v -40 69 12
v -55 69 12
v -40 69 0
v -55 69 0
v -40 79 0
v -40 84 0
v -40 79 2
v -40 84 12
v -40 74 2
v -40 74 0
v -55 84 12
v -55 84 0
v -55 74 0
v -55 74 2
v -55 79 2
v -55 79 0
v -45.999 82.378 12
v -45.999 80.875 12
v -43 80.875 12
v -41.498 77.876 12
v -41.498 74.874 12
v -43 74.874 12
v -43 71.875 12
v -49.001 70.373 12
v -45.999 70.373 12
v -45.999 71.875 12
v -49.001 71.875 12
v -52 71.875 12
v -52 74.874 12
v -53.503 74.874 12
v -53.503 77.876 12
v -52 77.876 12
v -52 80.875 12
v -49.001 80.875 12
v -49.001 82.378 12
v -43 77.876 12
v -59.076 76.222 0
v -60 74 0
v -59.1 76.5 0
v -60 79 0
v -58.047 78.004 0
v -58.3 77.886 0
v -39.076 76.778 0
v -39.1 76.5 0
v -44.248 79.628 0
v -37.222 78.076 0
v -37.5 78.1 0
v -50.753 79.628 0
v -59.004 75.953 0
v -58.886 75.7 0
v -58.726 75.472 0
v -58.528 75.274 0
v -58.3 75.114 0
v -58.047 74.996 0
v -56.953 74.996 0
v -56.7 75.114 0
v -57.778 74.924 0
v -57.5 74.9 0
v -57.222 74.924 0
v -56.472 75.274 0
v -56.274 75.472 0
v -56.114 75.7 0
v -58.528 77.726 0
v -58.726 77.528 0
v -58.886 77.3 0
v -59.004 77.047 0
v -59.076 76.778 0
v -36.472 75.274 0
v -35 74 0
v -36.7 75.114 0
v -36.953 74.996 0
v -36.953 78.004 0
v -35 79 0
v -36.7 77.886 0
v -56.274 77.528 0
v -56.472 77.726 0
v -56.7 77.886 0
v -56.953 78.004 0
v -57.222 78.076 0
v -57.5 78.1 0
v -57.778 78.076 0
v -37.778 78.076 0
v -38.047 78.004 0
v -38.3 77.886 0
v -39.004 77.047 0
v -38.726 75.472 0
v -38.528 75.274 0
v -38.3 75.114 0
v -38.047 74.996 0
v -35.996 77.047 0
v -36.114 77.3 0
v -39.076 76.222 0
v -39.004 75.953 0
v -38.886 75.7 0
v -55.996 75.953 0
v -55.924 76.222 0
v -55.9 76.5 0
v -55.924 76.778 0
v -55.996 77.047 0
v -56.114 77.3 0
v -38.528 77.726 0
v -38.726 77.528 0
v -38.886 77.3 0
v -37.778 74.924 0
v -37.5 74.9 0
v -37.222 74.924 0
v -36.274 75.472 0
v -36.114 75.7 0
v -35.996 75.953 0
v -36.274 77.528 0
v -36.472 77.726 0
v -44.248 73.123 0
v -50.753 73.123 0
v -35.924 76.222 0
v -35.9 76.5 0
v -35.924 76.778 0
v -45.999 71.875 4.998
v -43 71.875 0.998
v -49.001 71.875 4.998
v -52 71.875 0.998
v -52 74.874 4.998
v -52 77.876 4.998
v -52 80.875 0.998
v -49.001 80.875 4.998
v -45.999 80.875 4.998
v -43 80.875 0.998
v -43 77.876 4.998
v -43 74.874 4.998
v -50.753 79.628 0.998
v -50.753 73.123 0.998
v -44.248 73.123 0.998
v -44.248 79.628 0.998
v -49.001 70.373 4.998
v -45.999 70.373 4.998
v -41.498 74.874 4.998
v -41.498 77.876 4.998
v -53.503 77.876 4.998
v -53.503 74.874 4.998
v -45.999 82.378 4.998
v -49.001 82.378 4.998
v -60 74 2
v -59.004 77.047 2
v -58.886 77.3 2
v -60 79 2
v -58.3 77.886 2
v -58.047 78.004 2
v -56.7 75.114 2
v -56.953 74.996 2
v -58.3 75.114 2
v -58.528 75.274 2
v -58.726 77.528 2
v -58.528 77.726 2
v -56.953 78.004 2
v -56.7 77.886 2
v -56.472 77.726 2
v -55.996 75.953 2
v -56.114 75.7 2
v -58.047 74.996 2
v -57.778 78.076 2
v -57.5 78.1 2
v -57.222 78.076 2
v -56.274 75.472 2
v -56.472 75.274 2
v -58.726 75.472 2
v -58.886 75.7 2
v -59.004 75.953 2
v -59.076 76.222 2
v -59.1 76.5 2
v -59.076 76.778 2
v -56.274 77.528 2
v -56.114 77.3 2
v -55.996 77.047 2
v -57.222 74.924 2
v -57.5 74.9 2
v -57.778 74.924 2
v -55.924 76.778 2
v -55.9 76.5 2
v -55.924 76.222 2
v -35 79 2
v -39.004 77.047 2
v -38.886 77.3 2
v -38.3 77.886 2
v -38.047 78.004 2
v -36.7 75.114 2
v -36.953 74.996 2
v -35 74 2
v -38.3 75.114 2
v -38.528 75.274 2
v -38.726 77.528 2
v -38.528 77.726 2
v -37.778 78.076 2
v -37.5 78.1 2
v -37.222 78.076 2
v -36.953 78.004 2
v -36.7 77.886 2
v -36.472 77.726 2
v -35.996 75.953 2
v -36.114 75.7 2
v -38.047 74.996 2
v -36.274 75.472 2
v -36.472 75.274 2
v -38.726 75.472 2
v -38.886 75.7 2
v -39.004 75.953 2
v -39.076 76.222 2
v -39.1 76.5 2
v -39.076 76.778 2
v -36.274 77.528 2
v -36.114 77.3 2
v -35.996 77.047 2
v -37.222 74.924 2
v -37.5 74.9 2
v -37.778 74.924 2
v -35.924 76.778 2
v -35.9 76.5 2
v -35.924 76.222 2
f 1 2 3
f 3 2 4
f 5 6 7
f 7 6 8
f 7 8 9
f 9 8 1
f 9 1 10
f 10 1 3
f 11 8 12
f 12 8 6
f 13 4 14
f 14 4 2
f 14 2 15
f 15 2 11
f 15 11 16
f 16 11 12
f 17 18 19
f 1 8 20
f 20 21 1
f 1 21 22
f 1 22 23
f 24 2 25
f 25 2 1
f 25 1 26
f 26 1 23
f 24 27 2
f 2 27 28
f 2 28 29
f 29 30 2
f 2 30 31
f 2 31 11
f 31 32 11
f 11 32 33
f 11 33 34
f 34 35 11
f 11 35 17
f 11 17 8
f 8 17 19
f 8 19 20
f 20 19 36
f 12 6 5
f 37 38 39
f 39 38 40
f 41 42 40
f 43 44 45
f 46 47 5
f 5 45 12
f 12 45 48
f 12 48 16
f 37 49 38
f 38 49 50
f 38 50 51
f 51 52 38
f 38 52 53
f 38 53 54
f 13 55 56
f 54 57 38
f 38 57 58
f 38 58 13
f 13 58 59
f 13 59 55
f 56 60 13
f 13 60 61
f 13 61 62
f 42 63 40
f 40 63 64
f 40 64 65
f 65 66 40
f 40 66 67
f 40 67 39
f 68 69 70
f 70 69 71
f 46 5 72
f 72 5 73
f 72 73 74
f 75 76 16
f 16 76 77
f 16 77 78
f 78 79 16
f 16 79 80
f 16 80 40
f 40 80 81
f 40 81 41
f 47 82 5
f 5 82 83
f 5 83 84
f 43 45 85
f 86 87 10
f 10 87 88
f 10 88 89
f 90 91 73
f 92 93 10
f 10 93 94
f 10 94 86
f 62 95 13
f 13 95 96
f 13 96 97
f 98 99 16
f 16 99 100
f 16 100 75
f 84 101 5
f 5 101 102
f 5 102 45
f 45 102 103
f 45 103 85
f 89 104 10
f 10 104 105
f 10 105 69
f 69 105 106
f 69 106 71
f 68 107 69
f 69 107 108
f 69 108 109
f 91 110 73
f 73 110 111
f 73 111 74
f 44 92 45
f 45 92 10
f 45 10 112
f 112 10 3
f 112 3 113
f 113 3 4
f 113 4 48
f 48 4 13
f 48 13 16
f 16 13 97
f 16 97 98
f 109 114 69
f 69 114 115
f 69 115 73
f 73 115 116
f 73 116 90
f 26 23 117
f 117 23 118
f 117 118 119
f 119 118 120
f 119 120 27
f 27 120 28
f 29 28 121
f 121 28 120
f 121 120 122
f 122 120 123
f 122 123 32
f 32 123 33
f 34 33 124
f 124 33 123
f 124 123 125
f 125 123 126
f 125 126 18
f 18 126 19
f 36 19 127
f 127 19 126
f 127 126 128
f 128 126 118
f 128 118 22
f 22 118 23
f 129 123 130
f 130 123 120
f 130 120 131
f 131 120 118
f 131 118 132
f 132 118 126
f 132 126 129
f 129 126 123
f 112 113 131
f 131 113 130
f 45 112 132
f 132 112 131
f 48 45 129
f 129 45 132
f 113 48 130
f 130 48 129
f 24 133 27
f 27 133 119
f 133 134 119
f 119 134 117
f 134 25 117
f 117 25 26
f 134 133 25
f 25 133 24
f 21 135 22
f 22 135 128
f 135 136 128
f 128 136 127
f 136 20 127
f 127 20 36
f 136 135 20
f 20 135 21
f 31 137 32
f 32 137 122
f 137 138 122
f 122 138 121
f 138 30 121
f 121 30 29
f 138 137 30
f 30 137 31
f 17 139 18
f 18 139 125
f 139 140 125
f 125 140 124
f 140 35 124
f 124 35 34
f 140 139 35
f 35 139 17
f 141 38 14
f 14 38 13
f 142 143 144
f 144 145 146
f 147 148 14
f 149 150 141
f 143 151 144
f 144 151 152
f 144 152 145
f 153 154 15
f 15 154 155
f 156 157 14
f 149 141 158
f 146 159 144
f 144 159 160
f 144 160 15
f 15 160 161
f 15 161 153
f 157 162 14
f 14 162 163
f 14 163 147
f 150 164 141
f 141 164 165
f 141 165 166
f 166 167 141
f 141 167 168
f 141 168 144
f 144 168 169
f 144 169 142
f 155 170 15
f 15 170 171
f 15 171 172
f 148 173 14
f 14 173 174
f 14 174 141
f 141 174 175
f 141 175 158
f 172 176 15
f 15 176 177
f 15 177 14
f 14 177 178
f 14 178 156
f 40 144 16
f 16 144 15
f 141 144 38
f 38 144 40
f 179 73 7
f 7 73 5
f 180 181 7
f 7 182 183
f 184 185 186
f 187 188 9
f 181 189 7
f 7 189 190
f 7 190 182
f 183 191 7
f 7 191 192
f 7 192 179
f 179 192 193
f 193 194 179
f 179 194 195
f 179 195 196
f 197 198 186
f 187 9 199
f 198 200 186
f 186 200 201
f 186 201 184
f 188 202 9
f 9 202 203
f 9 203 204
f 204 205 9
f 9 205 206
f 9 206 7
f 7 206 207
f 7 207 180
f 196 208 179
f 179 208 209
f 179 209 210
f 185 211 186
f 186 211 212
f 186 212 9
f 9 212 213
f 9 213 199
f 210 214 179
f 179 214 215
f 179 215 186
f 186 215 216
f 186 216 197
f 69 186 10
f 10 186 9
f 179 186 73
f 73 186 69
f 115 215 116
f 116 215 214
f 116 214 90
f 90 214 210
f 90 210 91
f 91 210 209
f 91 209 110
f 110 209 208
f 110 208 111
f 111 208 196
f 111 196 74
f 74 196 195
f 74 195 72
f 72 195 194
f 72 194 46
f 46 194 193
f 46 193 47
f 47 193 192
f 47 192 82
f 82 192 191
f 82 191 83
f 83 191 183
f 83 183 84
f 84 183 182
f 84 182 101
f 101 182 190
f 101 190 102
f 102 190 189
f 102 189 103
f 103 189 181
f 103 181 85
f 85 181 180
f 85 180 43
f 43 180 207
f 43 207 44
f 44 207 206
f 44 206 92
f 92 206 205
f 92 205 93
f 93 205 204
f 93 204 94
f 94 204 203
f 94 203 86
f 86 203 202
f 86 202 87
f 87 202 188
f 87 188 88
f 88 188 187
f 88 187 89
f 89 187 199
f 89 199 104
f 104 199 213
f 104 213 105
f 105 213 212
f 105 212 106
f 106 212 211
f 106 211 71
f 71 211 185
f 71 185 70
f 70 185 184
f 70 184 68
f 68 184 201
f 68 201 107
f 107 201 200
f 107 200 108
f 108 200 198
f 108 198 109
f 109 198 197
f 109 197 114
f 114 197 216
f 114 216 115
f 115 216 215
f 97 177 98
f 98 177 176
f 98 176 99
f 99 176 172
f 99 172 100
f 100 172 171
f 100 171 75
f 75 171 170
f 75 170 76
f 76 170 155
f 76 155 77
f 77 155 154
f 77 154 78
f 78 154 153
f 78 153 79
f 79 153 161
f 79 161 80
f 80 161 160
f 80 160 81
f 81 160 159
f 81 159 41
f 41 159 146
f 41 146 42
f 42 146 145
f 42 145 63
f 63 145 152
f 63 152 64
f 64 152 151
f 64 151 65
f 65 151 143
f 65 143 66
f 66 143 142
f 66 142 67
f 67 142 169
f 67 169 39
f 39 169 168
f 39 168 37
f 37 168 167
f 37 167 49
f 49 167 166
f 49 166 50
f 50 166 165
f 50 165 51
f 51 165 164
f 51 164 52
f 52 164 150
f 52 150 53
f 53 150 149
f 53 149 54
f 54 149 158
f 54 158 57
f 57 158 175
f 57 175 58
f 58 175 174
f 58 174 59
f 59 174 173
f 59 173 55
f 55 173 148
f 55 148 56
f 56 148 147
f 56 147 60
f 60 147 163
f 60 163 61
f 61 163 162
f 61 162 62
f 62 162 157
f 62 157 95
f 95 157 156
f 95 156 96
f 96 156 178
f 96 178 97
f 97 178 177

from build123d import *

# Parameters (mm, degrees)
SKETCH1_W           = 15.000000596
SKETCH1_H           = 15.000000597
BOSS_EXTRUDE1_DEPTH = 12.000000104
SKETCH2_W           = 8.999999613
SKETCH2_H           = 9.000003338
CUT_EXTRUDE1_DEPTH  = 11.002000072
SKETCH3_W           = 6.504997611
SKETCH3_H           = 6.504997611
CUT_EXTRUDE2_DEPTH  = 102.11874099
SKETCH4_W           = 3.00199911
SKETCH4_H           = 7.001999765
CUT_EXTRUDE3_DEPTH  = 1.501999795
SKETCH5_W           = 7.001999765
SKETCH5_H           = 3.002002835
CUT_EXTRUDE4_DEPTH  = 1.501999795
SKETCH6_W           = 7.001999765
SKETCH6_H           = 3.002002835
CUT_EXTRUDE5_DEPTH  = 1.502998173
SKETCH7_W           = 3.00199911
SKETCH7_H           = 7.001999765
CUT_EXTRUDE6_DEPTH  = 1.502998173
SKETCH9_W           = 2
SKETCH9_H           = 5.000000597
BOSS_EXTRUDE2_DEPTH = 5
SKETCH10_W          = 2
SKETCH10_H          = 5.000000597
BOSS_EXTRUDE3_DEPTH = 5
SKETCH11_R          = 1.6
CUT_EXTRUDE7_DEPTH  = 5


with BuildPart() as part:
    # Sketch1 → Boss-Extrude1 (new body)
    with BuildSketch(Plane(origin=(0, 0, 0), x_dir=(-1, 0, 0), z_dir=(0, 0, -1))):
        with Locations((47.499999404, 76.49999857)):
            Rectangle(SKETCH1_W, SKETCH1_H)
    extrude(amount=-BOSS_EXTRUDE1_DEPTH)

    # Sketch2 → Cut-Extrude1 (cut)
    with BuildSketch(Plane.XY.offset(12.000000104)):
        with Locations((-47.500001266, 76.375000179)):
            Rectangle(SKETCH2_W, SKETCH2_H)
    extrude(amount=-CUT_EXTRUDE1_DEPTH, mode=Mode.SUBTRACT)

    # Sketch3 → Cut-Extrude2 (cut, through all)
    with BuildSketch(Plane(origin=(0, 0, 0), x_dir=(-1, 0, 0), z_dir=(0, 0, -1))):
        with Locations((47.500498593, 76.375499367)):
            Rectangle(SKETCH3_W, SKETCH3_H)
    extrude(amount=-CUT_EXTRUDE2_DEPTH, mode=Mode.SUBTRACT)

    # Sketch4 → Cut-Extrude3 (cut)
    with BuildSketch(Plane(origin=(0, 71.87499851, 0), x_dir=(-1, 0, 0), z_dir=(0, 1, 0))):
        with Locations((47.500001267, 8.499000222)):
            Rectangle(SKETCH4_W, SKETCH4_H)
    extrude(amount=-CUT_EXTRUDE3_DEPTH, mode=Mode.SUBTRACT)

    # Sketch5 → Cut-Extrude4 (cut)
    with BuildSketch(Plane.ZY.offset(43.00000146)):
        with Locations((8.499000222, 76.375000179)):
            Rectangle(SKETCH5_W, SKETCH5_H)
    extrude(amount=-CUT_EXTRUDE4_DEPTH, mode=Mode.SUBTRACT)

    # Sketch6 → Cut-Extrude5 (cut)
    with BuildSketch(Plane(origin=(-52.000001073, 0, 0), x_dir=(0, 0, -1), z_dir=(1, 0, 0))):
        with Locations((-8.499000222, 76.375000179)):
            Rectangle(SKETCH6_W, SKETCH6_H)
    extrude(amount=-CUT_EXTRUDE5_DEPTH, mode=Mode.SUBTRACT)

    # Sketch7 → Cut-Extrude6 (cut)
    with BuildSketch(Plane.XZ.offset(-80.875001848)):
        with Locations((-47.500001267, 8.499000222)):
            Rectangle(SKETCH7_W, SKETCH7_H)
    extrude(amount=-CUT_EXTRUDE6_DEPTH, mode=Mode.SUBTRACT)

    # Sketch9 → Boss-Extrude2 (add)
    with BuildSketch(Plane.ZY.offset(54.999999702)):
        with Locations((1, 76.49999857)):
            Rectangle(SKETCH9_W, SKETCH9_H)
    extrude(amount=BOSS_EXTRUDE2_DEPTH)

    # Sketch10 → Boss-Extrude3 (add)
    with BuildSketch(Plane(origin=(-39.999999106, 0, 0), x_dir=(0, 0, -1), z_dir=(1, 0, 0))):
        with Locations((-1, 76.49999857)):
            Rectangle(SKETCH10_W, SKETCH10_H)
    extrude(amount=BOSS_EXTRUDE3_DEPTH)

    # Sketch11 → Cut-Extrude7 (cut)
    with BuildSketch(Plane.XY.offset(2)):
        with Locations((-37.499999106, 76.499998569)):
            Circle(SKETCH11_R)
        with Locations((-57.499999702, 76.499998569)):
            Circle(SKETCH11_R)
    extrude(amount=-CUT_EXTRUDE7_DEPTH, mode=Mode.SUBTRACT)


solid = part.part
